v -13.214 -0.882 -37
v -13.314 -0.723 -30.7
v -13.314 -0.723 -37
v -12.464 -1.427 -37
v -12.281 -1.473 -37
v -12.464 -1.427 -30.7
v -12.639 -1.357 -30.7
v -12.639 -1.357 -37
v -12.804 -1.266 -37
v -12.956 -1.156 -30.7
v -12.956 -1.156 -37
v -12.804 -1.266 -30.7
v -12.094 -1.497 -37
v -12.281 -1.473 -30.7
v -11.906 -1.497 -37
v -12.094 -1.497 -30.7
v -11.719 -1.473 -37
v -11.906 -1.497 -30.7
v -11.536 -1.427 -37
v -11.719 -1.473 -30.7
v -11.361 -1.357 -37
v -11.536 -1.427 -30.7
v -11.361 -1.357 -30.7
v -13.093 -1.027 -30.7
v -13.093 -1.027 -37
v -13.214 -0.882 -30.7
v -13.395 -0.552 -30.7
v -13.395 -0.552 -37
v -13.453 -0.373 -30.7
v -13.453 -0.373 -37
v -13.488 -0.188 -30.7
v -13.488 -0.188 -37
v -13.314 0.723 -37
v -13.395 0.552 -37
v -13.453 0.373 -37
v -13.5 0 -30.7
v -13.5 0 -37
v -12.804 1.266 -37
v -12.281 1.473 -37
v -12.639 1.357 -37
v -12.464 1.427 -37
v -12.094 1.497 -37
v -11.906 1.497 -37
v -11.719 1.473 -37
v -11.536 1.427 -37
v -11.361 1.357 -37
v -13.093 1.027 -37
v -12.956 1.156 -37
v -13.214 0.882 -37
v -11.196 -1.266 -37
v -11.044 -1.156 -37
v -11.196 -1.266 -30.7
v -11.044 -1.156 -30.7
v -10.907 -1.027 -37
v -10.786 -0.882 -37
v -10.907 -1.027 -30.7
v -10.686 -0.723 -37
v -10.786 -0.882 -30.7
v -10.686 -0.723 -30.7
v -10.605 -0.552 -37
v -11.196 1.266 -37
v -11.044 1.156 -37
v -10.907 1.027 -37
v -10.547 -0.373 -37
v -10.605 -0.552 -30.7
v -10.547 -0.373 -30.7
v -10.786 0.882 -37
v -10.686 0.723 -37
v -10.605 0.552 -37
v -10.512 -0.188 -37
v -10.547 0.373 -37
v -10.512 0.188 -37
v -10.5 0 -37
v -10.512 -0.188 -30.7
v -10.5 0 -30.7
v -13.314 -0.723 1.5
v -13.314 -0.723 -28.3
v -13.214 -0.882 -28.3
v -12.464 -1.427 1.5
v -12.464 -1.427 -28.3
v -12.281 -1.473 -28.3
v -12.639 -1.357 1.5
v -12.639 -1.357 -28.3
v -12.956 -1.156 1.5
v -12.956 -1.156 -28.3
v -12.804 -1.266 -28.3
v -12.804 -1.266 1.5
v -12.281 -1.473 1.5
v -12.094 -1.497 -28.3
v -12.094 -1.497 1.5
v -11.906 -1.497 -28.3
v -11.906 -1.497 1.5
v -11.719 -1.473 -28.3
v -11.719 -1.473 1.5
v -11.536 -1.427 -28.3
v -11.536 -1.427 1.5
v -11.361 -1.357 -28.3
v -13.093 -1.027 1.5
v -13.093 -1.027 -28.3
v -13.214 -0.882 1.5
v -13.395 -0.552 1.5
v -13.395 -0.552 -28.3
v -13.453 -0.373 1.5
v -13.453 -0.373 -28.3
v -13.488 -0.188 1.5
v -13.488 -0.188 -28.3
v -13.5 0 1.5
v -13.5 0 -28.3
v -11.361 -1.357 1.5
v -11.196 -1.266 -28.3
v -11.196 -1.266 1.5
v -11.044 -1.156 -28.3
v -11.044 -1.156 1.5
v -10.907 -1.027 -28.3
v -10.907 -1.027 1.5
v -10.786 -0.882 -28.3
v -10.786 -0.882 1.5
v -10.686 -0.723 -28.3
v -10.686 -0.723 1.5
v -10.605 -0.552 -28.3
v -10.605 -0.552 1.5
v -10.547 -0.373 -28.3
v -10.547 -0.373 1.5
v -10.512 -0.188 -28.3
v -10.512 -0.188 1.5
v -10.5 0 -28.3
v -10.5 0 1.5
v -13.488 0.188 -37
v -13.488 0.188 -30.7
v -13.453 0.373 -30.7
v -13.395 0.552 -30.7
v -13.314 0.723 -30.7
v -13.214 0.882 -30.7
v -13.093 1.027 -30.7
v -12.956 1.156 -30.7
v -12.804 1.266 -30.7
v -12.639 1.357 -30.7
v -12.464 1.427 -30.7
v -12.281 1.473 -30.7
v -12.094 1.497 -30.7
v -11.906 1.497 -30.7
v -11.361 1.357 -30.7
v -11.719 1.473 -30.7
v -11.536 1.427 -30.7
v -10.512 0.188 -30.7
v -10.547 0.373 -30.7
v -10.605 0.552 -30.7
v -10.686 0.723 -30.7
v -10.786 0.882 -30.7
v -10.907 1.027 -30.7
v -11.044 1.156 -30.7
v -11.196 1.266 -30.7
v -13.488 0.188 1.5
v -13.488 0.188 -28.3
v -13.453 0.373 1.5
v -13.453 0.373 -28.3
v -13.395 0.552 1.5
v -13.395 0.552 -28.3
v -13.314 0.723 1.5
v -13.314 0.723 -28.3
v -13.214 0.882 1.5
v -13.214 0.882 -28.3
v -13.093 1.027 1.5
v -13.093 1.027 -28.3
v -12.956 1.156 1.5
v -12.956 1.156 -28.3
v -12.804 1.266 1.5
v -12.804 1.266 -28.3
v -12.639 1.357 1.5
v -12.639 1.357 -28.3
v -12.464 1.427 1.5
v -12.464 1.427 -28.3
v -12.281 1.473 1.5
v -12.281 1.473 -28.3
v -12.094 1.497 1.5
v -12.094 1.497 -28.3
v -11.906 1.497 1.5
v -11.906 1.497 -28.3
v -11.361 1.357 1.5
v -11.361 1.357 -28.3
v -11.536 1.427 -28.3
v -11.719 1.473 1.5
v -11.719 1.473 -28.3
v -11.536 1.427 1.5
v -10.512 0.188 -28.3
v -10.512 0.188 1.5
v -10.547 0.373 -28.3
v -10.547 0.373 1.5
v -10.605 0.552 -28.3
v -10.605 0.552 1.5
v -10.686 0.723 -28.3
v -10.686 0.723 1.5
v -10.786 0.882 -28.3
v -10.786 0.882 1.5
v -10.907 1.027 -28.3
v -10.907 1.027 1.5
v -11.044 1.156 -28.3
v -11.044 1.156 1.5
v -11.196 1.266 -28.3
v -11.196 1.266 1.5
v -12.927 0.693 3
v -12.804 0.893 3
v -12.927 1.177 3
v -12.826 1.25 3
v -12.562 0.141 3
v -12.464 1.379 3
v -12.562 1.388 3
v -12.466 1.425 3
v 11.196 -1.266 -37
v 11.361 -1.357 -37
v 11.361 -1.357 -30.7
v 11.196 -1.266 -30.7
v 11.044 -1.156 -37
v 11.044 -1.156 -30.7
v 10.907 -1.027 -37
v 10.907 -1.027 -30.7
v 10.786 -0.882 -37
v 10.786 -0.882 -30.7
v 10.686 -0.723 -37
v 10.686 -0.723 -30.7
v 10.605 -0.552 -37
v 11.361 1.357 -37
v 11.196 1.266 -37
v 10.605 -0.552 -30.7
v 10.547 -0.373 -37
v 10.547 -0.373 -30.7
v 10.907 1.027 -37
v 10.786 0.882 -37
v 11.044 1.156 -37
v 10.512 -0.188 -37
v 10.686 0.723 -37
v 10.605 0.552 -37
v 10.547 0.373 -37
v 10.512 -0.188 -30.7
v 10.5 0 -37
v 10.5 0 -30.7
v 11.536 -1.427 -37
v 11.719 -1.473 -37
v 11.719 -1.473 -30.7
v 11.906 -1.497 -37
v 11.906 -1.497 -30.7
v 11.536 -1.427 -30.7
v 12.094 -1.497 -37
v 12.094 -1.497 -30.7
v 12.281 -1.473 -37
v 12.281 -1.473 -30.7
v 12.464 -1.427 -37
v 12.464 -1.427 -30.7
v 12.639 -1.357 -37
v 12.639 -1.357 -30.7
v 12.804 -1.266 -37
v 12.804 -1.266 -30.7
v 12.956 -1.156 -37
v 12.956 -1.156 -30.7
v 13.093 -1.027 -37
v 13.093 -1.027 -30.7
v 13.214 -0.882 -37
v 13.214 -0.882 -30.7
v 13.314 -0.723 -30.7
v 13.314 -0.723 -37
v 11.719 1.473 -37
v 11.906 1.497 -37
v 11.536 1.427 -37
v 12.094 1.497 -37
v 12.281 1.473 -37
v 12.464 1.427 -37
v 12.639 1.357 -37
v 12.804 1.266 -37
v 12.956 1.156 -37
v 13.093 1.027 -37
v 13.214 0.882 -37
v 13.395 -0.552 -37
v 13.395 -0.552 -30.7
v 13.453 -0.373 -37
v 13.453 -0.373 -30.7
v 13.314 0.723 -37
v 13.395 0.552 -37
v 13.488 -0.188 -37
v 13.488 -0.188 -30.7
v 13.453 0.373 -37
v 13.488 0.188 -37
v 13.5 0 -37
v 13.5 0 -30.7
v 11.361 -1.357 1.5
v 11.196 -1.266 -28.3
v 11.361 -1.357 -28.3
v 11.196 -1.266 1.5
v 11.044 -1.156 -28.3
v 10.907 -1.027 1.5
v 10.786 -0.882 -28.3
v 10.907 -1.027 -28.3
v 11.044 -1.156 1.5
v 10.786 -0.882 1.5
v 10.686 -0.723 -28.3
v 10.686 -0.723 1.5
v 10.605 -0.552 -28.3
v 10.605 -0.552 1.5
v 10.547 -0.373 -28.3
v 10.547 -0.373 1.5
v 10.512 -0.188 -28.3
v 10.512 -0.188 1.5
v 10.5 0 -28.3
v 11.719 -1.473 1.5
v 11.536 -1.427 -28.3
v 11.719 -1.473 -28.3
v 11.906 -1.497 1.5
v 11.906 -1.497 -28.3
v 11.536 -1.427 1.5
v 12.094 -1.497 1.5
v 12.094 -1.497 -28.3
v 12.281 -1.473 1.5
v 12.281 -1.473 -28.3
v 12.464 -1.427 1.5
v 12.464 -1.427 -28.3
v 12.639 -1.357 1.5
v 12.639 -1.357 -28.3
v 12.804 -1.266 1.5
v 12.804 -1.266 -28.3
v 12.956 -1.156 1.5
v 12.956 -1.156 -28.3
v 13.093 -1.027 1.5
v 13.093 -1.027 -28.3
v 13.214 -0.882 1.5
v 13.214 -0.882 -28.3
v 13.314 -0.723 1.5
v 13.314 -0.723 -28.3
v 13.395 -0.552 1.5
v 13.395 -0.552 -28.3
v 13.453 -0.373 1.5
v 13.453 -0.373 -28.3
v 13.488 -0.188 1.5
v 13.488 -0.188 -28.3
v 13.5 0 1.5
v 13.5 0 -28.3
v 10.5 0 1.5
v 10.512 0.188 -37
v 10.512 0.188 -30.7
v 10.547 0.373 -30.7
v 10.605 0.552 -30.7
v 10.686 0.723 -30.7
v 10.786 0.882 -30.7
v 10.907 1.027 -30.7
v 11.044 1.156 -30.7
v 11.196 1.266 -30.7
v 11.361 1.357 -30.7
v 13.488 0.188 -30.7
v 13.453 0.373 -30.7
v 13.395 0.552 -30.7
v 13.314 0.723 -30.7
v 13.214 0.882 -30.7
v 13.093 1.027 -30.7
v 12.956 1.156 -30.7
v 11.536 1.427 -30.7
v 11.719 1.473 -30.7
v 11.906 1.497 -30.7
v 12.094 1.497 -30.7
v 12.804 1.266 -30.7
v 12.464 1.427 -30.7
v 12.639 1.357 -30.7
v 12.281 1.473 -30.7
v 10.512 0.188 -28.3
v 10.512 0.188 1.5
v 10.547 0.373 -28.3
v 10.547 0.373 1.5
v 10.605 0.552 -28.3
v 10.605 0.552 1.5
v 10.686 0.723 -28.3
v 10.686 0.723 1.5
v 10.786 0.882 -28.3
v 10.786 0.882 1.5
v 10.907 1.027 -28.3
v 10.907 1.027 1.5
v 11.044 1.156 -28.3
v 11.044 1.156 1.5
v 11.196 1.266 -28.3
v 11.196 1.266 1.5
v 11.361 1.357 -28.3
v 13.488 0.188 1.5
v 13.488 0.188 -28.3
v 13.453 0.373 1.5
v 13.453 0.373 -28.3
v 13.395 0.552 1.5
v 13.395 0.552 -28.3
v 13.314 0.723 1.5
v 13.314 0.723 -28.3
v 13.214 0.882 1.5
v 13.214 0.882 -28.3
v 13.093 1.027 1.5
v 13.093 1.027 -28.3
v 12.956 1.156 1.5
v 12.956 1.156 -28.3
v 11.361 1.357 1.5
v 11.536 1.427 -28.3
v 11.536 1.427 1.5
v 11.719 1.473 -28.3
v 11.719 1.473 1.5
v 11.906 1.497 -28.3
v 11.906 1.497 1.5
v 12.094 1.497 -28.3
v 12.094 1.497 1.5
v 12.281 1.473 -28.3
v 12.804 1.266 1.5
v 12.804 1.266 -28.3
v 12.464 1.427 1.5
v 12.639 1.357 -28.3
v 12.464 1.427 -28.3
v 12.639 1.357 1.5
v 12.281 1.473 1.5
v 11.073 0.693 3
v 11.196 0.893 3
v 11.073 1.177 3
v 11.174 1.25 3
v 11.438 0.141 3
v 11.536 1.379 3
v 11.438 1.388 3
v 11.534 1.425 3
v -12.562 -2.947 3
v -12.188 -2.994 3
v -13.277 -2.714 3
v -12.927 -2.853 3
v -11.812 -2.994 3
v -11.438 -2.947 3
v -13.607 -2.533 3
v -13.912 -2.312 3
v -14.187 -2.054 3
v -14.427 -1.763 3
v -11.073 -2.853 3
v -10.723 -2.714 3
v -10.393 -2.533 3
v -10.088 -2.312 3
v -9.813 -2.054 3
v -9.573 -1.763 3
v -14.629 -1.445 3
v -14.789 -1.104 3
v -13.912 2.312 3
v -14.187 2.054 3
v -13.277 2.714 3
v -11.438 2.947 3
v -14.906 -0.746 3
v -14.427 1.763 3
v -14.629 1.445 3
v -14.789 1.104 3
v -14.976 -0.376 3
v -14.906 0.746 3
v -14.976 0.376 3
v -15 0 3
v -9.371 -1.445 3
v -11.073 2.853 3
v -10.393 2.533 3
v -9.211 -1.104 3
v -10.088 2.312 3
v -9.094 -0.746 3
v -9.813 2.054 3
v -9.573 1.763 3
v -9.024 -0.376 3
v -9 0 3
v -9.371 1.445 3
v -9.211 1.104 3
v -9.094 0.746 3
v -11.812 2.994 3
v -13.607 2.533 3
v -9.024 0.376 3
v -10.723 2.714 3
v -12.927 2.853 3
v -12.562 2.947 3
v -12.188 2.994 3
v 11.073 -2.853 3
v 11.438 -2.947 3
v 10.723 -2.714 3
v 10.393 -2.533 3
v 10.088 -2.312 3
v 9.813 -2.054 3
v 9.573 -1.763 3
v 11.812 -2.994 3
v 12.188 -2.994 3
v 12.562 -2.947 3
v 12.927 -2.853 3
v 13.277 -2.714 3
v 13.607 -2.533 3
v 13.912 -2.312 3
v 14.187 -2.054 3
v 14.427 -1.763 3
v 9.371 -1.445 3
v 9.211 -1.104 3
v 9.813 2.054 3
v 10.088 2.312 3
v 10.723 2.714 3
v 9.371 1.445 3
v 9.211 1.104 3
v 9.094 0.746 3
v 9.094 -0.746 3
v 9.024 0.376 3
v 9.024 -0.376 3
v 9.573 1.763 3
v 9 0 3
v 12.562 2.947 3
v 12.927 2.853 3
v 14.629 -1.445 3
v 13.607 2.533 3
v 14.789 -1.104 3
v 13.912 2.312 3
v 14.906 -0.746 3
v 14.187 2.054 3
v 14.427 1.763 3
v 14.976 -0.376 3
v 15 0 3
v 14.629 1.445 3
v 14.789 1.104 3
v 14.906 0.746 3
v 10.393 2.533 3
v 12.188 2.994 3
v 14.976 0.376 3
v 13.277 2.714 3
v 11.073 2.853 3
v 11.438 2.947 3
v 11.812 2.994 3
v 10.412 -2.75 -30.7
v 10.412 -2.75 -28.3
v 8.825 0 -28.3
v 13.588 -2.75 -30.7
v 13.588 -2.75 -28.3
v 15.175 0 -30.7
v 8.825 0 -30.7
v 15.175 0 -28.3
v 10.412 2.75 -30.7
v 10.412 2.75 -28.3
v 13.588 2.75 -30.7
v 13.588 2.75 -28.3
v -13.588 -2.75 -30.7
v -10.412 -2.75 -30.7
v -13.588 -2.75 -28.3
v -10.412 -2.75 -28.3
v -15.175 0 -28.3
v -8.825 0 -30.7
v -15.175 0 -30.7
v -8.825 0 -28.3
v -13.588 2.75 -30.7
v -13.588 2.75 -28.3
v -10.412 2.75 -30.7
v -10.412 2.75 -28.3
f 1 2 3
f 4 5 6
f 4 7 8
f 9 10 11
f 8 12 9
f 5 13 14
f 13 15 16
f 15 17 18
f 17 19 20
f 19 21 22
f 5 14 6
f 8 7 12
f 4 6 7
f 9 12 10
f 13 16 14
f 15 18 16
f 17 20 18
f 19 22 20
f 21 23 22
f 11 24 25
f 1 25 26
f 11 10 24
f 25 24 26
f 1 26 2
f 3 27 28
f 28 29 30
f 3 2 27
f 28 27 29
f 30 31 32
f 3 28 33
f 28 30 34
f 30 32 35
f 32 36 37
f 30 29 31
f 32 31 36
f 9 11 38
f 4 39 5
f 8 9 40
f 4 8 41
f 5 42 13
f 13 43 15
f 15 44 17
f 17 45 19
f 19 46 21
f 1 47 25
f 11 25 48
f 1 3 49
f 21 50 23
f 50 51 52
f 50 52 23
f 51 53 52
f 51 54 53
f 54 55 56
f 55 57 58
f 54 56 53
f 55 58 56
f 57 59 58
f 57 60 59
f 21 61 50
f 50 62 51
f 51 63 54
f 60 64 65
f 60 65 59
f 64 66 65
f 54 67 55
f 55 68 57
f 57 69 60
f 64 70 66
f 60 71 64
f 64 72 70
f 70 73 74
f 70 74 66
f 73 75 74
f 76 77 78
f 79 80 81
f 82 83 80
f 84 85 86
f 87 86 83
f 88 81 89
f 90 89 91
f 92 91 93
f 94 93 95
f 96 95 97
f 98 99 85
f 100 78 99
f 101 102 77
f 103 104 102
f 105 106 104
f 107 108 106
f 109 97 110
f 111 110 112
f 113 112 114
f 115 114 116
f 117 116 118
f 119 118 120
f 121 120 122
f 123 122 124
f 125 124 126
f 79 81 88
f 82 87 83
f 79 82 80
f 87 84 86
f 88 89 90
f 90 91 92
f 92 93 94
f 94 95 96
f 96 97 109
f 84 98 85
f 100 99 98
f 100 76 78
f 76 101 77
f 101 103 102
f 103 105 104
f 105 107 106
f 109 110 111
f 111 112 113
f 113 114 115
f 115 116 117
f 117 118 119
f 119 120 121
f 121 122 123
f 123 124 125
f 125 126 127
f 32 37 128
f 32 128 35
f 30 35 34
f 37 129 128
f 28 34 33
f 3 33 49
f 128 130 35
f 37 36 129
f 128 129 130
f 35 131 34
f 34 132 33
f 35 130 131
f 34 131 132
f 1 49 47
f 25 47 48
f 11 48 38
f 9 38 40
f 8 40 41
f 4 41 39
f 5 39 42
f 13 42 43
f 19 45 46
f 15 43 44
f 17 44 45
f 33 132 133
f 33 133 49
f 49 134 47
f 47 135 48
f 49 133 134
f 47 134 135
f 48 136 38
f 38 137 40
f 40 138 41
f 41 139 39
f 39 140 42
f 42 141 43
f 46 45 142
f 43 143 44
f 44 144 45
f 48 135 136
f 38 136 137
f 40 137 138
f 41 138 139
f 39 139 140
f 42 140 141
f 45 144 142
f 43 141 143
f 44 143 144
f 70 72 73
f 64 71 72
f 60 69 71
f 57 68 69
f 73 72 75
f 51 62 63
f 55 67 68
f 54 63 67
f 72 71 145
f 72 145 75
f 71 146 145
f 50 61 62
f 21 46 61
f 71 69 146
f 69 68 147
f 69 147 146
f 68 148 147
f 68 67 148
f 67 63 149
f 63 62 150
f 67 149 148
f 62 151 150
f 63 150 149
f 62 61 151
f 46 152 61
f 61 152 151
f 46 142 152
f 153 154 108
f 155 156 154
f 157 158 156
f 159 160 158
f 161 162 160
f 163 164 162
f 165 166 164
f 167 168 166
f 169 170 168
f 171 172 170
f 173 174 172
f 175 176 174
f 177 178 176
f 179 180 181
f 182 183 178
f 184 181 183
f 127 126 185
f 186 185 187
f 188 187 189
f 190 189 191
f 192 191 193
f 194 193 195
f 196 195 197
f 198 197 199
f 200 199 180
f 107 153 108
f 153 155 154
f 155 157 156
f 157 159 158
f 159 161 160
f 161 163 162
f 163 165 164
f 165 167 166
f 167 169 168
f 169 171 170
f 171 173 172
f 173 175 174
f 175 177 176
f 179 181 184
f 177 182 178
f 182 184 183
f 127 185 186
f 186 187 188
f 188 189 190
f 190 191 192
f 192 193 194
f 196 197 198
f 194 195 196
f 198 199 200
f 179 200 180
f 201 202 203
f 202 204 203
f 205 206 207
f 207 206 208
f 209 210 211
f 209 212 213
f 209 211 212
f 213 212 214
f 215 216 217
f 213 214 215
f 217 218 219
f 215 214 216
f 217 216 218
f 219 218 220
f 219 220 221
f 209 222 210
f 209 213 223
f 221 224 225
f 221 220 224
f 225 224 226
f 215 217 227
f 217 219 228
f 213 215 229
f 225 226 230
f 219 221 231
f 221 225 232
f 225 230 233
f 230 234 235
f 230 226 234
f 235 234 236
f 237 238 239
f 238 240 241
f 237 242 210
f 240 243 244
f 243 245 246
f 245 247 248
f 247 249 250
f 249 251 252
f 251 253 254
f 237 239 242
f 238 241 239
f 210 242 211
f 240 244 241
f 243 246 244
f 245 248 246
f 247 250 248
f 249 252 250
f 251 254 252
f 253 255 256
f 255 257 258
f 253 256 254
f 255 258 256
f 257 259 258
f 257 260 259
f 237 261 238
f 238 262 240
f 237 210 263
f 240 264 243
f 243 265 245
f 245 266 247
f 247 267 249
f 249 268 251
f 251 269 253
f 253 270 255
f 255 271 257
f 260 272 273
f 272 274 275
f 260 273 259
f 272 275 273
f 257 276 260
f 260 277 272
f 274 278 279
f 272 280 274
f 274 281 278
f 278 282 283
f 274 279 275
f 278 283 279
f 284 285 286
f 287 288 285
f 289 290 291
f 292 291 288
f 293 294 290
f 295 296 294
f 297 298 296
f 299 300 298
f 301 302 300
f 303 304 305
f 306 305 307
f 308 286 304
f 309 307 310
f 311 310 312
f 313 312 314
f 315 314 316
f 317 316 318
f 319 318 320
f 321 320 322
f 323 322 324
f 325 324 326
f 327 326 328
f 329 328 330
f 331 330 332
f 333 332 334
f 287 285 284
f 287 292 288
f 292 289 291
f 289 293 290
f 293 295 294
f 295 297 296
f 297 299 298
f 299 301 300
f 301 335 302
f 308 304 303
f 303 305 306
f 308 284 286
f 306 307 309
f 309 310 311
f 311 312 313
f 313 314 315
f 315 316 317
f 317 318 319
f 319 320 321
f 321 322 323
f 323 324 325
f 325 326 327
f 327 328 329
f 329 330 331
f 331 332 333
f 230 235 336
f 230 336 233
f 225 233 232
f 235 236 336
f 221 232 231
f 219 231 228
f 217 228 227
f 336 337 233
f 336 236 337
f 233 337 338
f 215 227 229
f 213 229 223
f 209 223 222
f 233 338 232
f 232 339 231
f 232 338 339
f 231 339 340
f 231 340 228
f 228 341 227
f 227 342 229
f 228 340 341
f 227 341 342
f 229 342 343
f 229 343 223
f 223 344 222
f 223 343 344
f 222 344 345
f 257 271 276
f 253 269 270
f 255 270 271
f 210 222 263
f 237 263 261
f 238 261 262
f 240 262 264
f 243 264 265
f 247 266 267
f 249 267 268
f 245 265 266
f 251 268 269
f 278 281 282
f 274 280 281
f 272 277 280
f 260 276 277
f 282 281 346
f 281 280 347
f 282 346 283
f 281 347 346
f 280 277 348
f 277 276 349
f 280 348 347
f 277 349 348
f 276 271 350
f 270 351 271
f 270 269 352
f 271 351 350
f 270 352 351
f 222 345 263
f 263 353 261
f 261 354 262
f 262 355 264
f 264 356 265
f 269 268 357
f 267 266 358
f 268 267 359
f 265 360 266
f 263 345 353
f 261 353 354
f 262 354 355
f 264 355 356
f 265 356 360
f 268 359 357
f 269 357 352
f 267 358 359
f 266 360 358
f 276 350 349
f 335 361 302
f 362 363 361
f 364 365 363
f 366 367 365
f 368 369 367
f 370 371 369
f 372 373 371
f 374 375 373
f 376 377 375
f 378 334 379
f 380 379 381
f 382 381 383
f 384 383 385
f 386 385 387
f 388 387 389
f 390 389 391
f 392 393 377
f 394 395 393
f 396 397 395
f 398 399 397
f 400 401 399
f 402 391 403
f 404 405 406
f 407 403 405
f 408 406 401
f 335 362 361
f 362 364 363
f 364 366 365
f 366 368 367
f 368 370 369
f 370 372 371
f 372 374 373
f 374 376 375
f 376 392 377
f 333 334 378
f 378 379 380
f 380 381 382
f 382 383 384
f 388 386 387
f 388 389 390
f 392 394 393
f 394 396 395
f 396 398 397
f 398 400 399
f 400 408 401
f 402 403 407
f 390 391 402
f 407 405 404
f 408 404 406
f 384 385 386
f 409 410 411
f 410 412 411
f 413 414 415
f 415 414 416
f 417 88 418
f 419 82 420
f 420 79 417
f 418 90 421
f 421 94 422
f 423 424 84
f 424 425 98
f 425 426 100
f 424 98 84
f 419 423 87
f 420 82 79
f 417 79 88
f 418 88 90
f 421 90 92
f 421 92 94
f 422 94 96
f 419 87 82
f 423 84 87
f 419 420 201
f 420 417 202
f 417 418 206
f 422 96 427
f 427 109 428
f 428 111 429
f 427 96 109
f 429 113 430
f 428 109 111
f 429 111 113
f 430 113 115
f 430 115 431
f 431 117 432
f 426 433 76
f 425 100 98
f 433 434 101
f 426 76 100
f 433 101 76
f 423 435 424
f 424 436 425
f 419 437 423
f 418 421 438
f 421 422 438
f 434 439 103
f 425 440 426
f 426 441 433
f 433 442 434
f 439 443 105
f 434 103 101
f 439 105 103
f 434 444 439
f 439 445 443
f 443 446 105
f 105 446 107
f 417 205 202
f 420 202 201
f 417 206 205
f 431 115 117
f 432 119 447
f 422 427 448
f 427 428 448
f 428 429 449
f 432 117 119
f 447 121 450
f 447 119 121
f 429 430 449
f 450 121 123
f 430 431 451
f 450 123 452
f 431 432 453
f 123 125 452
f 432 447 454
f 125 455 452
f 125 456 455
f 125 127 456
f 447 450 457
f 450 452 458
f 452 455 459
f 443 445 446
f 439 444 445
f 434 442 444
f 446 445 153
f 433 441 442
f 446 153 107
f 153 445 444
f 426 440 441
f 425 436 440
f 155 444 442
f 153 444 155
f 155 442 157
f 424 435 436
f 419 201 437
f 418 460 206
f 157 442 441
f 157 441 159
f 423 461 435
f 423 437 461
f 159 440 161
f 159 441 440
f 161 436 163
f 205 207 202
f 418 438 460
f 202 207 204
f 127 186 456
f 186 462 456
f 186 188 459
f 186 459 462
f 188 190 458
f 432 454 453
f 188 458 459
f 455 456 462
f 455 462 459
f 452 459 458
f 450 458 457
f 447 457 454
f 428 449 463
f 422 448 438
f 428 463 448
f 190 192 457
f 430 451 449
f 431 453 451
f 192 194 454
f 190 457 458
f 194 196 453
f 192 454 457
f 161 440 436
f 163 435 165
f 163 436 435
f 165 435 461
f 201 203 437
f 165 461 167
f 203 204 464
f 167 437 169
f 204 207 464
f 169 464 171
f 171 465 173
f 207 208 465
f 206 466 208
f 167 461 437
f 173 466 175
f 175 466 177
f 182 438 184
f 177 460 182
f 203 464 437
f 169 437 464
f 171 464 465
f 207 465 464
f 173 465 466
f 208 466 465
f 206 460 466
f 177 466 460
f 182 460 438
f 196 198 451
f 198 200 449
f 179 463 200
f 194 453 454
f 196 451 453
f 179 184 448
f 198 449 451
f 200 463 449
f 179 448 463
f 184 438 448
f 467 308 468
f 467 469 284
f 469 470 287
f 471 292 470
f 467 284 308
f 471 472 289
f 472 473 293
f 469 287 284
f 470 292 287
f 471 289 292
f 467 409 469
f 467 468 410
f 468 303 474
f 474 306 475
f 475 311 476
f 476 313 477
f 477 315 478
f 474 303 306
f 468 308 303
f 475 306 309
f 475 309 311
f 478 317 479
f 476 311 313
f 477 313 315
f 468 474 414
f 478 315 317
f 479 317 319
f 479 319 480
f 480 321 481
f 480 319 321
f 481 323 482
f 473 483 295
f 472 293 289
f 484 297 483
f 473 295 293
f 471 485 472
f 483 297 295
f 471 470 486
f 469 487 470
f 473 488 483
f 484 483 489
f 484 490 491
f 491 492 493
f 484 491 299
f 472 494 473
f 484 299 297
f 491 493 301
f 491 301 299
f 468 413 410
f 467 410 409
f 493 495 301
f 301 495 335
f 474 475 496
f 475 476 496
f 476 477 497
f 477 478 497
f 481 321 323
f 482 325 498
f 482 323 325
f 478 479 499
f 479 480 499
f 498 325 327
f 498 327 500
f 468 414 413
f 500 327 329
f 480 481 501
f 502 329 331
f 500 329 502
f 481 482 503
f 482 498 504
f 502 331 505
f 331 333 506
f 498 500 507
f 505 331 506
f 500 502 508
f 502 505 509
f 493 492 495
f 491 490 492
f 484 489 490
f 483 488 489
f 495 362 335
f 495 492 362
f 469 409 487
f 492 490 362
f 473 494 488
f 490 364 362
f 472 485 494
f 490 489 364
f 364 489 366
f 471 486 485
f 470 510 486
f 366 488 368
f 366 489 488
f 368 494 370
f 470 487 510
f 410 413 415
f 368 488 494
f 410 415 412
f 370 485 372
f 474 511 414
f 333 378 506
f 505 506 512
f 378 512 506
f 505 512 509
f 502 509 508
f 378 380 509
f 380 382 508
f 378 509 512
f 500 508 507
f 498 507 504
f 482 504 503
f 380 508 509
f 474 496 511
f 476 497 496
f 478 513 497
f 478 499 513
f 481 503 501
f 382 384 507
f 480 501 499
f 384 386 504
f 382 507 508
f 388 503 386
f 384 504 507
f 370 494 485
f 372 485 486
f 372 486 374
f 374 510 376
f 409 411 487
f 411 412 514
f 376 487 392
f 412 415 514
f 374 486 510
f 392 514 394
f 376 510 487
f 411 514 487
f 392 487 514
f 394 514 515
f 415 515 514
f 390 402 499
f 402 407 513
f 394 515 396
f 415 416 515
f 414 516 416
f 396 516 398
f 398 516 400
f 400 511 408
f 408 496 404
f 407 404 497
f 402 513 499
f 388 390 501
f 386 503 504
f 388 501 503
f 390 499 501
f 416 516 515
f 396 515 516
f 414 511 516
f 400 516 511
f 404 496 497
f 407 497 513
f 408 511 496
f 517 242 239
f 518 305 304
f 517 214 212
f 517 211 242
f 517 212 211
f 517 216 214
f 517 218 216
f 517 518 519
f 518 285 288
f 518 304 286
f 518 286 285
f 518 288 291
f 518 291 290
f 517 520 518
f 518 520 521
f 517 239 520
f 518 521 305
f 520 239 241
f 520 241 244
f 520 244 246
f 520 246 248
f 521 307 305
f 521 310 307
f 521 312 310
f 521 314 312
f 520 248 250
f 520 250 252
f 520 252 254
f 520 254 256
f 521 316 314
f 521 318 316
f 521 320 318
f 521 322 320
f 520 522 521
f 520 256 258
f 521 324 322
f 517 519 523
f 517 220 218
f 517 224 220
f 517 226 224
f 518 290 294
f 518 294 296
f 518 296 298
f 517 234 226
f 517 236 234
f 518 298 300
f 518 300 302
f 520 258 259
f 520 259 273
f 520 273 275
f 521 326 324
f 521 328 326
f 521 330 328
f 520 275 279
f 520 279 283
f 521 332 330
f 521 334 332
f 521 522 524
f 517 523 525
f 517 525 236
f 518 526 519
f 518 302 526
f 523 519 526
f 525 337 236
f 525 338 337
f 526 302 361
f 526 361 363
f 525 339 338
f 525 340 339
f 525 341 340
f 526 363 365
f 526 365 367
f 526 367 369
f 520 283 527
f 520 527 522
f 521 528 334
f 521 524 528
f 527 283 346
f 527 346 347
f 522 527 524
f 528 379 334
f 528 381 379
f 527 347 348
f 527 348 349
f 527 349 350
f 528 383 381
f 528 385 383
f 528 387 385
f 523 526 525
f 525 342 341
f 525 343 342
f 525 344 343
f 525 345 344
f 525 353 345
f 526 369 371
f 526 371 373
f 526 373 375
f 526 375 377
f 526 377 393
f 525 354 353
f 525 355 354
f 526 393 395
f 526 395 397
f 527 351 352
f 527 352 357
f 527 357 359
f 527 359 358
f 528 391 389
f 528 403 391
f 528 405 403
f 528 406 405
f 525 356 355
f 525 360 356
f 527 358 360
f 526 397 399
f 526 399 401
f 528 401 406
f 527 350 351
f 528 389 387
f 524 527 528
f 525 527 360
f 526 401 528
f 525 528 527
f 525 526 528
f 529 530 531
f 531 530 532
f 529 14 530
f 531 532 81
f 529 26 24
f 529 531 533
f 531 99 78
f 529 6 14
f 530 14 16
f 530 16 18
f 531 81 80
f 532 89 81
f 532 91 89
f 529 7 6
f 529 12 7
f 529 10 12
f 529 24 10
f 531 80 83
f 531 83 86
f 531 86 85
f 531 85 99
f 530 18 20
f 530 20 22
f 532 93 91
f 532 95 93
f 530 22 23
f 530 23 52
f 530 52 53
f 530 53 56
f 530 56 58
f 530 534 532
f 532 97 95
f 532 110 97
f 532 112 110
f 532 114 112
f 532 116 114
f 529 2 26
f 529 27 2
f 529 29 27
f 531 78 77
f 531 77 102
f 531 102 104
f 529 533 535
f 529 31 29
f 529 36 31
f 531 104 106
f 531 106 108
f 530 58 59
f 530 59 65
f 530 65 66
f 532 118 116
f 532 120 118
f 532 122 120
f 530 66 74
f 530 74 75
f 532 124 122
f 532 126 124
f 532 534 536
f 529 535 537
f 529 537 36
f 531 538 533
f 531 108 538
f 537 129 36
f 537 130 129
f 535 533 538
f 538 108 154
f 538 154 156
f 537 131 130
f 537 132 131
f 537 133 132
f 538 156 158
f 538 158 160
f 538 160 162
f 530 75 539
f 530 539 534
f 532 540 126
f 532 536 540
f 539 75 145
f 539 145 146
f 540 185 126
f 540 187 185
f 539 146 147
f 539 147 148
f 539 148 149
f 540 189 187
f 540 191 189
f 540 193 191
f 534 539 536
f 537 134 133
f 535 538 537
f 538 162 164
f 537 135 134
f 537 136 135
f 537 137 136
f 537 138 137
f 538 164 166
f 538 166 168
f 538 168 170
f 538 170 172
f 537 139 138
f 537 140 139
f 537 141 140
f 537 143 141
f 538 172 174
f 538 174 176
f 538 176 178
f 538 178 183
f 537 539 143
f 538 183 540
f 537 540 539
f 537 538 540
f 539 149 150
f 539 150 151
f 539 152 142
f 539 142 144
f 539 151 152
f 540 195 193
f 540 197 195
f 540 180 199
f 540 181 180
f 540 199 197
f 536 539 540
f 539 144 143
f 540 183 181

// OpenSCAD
$fn = 50;

difference() {
	union() {
		translate(v = [-12, 0, 3]) {
			rotate(a = [0, 0, 0]) {
				difference() {
					union() {
						translate(v = [0, 0, -40.0]) {
							cylinder(h = 40, r = 1.5);
						}
						translate(v = [0, 0, -1.5]) {
							cylinder(h = 1.5, r1 = 1.5, r2 = 3);
						}
					}
					union();
				}
			}
		}
		translate(v = [-12, 0, -30.7]) {
			rotate(a = [0, 0, 0]) {
				difference() {
					union() {
						linear_extrude(height = 2.4) {
							polygon(points = [[3.1754264805429417, 0.0], [1.5877132402714713, 2.75], [-1.5877132402714702, 2.7500000000000004], [-3.1754264805429417, 3.888775875324659e-16], [-1.5877132402714722, -2.7499999999999996], [1.5877132402714687, -2.7500000000000013]]);
						}
					}
					union();
				}
			}
		}
		translate(v = [12, 0, 3]) {
			rotate(a = [0, 0, 0]) {
				difference() {
					union() {
						translate(v = [0, 0, -40.0]) {
							cylinder(h = 40, r = 1.5);
						}
						translate(v = [0, 0, -1.5]) {
							cylinder(h = 1.5, r1 = 1.5, r2 = 3);
						}
					}
					union();
				}
			}
		}
		translate(v = [12, 0, -30.7]) {
			rotate(a = [0, 0, 0]) {
				difference() {
					union() {
						linear_extrude(height = 2.4) {
							polygon(points = [[3.1754264805429417, 0.0], [1.5877132402714713, 2.75], [-1.5877132402714702, 2.7500000000000004], [-3.1754264805429417, 3.888775875324659e-16], [-1.5877132402714722, -2.7499999999999996], [1.5877132402714687, -2.7500000000000013]]);
						}
					}
					union();
				}
			}
		}
	}
	union();
}
